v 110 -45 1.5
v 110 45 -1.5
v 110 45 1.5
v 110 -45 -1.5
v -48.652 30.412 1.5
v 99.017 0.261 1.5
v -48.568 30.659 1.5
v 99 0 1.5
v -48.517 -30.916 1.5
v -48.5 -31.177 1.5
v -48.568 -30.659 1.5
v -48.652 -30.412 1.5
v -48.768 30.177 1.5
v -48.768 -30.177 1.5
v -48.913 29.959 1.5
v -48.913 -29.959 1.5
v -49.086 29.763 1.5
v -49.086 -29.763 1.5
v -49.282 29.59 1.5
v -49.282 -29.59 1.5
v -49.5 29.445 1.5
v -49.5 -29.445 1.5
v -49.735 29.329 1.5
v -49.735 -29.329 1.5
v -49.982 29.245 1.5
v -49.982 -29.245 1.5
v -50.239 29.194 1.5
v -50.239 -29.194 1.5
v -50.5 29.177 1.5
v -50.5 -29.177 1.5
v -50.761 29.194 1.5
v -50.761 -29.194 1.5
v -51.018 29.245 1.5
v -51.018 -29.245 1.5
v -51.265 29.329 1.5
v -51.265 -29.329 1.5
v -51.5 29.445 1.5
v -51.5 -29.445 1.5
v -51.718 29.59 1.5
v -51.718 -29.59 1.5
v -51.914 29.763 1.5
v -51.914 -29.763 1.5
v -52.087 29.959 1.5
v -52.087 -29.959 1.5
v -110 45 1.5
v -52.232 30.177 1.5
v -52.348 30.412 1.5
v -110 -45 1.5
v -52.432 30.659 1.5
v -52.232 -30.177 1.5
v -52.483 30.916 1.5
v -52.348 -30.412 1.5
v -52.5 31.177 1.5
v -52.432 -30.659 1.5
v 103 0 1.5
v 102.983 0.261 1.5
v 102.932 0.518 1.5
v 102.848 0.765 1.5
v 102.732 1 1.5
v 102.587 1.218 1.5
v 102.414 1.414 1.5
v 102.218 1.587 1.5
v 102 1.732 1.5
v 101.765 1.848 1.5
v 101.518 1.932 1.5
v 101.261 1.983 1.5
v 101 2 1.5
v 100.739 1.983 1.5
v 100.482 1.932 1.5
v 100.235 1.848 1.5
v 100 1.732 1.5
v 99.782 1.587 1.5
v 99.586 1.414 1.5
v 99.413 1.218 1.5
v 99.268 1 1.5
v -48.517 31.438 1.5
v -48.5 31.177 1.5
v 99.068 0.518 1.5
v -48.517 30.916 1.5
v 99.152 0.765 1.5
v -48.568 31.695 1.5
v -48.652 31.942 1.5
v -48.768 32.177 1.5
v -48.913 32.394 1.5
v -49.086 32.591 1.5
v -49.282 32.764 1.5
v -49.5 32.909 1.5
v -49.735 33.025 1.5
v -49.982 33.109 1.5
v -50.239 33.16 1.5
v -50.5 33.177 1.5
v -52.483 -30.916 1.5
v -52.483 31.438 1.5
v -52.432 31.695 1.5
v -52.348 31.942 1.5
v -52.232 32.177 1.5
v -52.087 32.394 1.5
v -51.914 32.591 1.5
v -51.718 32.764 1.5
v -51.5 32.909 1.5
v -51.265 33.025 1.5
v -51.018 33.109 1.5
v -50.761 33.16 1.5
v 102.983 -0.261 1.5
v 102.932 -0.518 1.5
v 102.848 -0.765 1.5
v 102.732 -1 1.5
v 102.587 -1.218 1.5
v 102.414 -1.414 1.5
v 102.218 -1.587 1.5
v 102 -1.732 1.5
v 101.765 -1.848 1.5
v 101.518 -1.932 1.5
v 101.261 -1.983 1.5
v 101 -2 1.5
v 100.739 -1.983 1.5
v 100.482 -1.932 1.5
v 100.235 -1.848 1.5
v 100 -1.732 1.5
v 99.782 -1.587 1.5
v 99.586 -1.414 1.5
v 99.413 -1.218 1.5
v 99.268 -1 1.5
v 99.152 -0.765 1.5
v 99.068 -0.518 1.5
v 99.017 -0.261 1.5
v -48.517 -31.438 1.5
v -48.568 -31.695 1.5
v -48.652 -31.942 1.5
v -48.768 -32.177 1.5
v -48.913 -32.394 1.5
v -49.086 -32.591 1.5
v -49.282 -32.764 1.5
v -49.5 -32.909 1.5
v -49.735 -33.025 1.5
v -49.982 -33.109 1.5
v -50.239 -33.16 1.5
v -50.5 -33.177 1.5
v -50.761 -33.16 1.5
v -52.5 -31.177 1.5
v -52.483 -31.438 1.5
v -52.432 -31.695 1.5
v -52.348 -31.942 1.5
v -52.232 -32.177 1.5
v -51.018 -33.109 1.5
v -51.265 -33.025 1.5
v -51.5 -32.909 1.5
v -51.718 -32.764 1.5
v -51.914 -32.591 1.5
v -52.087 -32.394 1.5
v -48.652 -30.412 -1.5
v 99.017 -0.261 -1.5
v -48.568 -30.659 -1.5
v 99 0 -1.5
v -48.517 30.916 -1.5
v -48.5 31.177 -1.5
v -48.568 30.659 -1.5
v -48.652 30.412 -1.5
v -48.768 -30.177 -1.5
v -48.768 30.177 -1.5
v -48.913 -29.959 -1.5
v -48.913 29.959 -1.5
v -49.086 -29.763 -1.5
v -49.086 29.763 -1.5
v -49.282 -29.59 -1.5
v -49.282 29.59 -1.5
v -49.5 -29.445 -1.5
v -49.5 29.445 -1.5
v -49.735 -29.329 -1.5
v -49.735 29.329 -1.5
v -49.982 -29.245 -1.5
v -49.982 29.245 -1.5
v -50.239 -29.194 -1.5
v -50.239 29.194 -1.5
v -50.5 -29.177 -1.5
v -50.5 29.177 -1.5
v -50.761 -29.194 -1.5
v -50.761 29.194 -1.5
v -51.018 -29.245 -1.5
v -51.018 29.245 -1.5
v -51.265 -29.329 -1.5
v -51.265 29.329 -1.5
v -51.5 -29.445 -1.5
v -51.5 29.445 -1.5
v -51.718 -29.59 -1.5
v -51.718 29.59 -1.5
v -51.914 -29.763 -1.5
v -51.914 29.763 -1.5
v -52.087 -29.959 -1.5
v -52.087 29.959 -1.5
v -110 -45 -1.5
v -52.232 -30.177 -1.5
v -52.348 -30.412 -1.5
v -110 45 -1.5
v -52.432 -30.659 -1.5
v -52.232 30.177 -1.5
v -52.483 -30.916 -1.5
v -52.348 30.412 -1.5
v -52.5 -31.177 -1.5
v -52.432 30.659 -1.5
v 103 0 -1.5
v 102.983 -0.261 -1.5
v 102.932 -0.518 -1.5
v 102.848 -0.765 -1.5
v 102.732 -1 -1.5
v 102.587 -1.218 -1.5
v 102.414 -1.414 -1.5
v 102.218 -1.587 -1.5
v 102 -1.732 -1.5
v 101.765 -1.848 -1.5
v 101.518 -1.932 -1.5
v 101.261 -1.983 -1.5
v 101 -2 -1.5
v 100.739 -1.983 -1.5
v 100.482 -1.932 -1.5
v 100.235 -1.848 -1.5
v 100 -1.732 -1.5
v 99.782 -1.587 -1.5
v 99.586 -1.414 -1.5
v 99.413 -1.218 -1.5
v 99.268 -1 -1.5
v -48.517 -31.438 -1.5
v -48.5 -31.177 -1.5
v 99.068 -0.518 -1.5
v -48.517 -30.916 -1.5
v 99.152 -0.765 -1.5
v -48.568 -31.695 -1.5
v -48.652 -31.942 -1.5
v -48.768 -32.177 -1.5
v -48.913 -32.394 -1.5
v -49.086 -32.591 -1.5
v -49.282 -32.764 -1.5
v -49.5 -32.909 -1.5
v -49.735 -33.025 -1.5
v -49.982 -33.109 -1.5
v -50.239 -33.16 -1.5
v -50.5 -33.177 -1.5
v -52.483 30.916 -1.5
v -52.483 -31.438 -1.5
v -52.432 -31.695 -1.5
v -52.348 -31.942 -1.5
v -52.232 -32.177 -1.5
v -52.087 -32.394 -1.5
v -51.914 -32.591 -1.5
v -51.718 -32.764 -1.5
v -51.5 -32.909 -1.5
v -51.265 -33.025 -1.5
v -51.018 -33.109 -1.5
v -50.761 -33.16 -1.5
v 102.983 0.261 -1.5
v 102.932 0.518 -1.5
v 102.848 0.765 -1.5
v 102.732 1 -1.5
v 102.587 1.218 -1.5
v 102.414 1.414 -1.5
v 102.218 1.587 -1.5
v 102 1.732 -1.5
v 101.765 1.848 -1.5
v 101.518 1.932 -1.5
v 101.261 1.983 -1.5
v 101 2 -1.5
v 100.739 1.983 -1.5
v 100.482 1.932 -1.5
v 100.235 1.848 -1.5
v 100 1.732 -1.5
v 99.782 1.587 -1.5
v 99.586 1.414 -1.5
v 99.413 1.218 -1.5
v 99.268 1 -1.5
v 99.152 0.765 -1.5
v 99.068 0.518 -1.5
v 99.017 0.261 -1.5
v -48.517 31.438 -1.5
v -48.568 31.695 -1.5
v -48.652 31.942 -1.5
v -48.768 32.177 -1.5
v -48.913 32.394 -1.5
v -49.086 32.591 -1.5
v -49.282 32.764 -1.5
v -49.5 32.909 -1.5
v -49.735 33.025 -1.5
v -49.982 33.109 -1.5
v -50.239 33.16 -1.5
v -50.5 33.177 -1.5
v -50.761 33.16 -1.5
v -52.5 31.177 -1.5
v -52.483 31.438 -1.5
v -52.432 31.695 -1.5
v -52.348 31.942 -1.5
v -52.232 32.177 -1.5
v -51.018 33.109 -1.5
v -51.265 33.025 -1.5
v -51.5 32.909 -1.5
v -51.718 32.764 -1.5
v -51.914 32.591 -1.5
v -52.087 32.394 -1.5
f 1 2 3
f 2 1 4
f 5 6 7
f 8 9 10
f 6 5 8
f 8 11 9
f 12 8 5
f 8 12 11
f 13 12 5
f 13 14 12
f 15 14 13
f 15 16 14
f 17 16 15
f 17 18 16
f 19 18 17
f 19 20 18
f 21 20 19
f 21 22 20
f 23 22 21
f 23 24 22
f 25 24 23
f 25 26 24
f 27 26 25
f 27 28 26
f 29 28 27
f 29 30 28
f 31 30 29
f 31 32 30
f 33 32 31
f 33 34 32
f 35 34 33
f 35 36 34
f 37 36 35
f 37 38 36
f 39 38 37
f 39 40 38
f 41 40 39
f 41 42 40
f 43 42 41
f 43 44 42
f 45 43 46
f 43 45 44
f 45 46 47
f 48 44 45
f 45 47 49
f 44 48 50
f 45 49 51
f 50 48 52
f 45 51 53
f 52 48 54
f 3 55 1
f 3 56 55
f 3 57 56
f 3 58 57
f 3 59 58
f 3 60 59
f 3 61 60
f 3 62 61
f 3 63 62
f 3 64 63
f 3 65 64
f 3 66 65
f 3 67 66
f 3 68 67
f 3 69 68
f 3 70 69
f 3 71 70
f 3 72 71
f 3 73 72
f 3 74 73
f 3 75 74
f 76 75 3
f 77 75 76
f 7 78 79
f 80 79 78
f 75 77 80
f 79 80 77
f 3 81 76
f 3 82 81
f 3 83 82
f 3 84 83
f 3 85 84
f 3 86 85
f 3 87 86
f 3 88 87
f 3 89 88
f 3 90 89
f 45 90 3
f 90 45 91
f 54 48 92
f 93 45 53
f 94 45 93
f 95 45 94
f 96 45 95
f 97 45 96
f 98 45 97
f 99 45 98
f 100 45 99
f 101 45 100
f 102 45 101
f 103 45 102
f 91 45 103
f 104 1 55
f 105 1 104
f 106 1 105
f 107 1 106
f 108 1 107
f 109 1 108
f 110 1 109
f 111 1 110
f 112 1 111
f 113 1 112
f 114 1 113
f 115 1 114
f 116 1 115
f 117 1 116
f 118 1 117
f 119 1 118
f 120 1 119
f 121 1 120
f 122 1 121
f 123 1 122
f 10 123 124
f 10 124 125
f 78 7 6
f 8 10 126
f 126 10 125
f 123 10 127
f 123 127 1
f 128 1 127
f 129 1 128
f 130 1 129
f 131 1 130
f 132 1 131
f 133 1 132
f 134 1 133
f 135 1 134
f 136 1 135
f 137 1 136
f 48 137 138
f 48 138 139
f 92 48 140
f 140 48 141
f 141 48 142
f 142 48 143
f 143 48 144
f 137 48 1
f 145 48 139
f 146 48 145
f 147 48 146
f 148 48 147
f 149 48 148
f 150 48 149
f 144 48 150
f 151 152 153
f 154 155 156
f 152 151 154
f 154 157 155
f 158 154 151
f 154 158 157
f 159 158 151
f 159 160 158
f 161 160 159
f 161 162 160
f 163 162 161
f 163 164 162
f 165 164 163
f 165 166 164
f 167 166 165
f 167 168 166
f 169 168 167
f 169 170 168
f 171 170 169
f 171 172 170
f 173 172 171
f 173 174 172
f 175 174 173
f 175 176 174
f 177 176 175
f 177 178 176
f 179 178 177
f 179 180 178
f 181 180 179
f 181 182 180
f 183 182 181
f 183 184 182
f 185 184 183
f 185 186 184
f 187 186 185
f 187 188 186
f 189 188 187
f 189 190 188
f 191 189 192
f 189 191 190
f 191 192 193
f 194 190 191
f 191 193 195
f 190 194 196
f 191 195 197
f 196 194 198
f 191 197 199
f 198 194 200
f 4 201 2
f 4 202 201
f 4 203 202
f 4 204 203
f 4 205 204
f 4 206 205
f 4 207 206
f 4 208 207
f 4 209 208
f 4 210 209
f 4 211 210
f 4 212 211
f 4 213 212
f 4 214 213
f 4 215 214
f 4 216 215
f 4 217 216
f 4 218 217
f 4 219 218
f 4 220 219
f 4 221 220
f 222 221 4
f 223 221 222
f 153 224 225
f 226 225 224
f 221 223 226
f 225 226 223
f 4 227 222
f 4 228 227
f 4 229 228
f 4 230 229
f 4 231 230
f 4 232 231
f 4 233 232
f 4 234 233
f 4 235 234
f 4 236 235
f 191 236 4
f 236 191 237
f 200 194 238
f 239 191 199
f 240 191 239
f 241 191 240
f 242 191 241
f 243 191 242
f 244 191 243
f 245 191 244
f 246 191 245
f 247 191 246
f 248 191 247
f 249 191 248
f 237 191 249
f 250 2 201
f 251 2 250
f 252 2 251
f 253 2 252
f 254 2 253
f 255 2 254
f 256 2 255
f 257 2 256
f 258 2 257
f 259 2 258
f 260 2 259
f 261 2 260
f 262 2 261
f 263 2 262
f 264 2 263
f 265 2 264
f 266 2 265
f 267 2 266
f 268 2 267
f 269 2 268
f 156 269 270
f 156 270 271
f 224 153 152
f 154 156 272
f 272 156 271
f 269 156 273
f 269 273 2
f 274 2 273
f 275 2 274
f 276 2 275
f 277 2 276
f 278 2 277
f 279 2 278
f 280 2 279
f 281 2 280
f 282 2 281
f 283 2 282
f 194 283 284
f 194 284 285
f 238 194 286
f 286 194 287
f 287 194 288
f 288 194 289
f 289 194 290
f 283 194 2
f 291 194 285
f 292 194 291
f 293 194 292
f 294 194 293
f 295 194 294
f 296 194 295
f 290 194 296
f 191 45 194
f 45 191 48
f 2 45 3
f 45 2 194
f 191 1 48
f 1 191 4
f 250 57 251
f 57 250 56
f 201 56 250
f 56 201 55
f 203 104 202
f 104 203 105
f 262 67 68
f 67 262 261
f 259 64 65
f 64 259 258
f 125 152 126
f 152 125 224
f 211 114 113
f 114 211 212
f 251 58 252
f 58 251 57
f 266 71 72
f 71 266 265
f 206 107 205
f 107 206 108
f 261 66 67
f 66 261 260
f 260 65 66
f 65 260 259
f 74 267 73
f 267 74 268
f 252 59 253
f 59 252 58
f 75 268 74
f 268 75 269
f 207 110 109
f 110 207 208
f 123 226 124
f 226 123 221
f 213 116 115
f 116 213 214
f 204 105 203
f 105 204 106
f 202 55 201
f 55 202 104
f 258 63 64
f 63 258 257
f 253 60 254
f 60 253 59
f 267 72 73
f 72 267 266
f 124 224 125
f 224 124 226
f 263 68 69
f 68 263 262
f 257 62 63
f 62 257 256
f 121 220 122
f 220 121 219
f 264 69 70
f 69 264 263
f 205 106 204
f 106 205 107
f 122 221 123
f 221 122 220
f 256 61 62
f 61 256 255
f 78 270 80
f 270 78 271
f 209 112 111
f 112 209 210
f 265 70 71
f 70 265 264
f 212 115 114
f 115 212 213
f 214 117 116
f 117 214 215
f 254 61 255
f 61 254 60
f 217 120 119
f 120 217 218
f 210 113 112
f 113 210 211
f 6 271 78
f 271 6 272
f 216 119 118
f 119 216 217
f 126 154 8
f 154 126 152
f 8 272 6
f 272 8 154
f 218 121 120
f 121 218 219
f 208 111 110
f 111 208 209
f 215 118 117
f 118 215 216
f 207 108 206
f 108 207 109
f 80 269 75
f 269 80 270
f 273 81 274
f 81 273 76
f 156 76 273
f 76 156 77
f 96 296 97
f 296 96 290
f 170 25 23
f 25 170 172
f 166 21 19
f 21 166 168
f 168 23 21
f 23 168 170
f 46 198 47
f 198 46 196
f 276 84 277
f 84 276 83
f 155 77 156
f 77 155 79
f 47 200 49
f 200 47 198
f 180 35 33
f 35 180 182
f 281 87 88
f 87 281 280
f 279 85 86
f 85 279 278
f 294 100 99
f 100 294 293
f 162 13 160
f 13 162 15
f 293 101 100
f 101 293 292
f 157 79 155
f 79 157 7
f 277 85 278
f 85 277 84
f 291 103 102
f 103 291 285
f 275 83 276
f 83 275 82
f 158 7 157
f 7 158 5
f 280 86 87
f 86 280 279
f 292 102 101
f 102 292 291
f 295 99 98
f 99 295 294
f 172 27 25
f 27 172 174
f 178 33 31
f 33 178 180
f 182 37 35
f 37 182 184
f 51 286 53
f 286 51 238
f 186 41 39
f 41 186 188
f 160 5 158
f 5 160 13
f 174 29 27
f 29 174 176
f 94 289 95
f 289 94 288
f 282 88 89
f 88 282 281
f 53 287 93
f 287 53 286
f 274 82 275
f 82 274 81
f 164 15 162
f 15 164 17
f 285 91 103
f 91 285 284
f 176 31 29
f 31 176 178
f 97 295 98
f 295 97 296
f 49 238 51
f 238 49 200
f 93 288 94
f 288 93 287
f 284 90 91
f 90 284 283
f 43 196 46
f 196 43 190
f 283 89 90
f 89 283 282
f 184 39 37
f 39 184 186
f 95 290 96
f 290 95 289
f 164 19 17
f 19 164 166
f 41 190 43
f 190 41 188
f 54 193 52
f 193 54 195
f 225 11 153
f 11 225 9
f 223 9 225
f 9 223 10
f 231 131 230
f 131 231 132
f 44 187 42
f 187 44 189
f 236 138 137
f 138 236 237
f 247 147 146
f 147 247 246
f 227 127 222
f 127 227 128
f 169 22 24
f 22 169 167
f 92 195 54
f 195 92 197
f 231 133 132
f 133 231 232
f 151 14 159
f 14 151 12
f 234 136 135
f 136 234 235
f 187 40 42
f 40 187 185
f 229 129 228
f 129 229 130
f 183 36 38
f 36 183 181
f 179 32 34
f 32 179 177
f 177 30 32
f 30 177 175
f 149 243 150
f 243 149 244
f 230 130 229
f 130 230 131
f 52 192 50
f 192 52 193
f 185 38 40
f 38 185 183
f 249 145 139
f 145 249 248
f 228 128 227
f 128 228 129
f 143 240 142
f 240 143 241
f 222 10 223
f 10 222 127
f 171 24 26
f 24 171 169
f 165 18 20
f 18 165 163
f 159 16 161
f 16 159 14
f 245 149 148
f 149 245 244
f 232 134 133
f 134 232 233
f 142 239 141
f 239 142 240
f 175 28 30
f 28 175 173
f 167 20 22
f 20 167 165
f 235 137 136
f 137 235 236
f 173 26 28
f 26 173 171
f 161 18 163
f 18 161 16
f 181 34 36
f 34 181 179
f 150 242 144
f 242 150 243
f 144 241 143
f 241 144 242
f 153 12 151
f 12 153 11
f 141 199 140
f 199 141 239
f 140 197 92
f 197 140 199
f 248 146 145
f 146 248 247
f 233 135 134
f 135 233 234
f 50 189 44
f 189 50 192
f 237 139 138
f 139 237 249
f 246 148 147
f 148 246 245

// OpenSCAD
// ========================================
// a 220 x 90 x 3 mm plate with three 4 mm holes
// NeuroCAD canonical IR; dimensions are millimetres
// ========================================
$fn = 48;

difference() {
  cube(size=[220, 90, 3], center=true);
  translate([101, 0, 0]) {
    cylinder(r=2, h=5, center=true);
  }
  translate([-50.5, 31.1769145362398, 0]) {
    cylinder(r=2, h=5, center=true);
  }
  translate([-50.5, -31.1769145362398, 0]) {
    cylinder(r=2, h=5, center=true);
  }
}
